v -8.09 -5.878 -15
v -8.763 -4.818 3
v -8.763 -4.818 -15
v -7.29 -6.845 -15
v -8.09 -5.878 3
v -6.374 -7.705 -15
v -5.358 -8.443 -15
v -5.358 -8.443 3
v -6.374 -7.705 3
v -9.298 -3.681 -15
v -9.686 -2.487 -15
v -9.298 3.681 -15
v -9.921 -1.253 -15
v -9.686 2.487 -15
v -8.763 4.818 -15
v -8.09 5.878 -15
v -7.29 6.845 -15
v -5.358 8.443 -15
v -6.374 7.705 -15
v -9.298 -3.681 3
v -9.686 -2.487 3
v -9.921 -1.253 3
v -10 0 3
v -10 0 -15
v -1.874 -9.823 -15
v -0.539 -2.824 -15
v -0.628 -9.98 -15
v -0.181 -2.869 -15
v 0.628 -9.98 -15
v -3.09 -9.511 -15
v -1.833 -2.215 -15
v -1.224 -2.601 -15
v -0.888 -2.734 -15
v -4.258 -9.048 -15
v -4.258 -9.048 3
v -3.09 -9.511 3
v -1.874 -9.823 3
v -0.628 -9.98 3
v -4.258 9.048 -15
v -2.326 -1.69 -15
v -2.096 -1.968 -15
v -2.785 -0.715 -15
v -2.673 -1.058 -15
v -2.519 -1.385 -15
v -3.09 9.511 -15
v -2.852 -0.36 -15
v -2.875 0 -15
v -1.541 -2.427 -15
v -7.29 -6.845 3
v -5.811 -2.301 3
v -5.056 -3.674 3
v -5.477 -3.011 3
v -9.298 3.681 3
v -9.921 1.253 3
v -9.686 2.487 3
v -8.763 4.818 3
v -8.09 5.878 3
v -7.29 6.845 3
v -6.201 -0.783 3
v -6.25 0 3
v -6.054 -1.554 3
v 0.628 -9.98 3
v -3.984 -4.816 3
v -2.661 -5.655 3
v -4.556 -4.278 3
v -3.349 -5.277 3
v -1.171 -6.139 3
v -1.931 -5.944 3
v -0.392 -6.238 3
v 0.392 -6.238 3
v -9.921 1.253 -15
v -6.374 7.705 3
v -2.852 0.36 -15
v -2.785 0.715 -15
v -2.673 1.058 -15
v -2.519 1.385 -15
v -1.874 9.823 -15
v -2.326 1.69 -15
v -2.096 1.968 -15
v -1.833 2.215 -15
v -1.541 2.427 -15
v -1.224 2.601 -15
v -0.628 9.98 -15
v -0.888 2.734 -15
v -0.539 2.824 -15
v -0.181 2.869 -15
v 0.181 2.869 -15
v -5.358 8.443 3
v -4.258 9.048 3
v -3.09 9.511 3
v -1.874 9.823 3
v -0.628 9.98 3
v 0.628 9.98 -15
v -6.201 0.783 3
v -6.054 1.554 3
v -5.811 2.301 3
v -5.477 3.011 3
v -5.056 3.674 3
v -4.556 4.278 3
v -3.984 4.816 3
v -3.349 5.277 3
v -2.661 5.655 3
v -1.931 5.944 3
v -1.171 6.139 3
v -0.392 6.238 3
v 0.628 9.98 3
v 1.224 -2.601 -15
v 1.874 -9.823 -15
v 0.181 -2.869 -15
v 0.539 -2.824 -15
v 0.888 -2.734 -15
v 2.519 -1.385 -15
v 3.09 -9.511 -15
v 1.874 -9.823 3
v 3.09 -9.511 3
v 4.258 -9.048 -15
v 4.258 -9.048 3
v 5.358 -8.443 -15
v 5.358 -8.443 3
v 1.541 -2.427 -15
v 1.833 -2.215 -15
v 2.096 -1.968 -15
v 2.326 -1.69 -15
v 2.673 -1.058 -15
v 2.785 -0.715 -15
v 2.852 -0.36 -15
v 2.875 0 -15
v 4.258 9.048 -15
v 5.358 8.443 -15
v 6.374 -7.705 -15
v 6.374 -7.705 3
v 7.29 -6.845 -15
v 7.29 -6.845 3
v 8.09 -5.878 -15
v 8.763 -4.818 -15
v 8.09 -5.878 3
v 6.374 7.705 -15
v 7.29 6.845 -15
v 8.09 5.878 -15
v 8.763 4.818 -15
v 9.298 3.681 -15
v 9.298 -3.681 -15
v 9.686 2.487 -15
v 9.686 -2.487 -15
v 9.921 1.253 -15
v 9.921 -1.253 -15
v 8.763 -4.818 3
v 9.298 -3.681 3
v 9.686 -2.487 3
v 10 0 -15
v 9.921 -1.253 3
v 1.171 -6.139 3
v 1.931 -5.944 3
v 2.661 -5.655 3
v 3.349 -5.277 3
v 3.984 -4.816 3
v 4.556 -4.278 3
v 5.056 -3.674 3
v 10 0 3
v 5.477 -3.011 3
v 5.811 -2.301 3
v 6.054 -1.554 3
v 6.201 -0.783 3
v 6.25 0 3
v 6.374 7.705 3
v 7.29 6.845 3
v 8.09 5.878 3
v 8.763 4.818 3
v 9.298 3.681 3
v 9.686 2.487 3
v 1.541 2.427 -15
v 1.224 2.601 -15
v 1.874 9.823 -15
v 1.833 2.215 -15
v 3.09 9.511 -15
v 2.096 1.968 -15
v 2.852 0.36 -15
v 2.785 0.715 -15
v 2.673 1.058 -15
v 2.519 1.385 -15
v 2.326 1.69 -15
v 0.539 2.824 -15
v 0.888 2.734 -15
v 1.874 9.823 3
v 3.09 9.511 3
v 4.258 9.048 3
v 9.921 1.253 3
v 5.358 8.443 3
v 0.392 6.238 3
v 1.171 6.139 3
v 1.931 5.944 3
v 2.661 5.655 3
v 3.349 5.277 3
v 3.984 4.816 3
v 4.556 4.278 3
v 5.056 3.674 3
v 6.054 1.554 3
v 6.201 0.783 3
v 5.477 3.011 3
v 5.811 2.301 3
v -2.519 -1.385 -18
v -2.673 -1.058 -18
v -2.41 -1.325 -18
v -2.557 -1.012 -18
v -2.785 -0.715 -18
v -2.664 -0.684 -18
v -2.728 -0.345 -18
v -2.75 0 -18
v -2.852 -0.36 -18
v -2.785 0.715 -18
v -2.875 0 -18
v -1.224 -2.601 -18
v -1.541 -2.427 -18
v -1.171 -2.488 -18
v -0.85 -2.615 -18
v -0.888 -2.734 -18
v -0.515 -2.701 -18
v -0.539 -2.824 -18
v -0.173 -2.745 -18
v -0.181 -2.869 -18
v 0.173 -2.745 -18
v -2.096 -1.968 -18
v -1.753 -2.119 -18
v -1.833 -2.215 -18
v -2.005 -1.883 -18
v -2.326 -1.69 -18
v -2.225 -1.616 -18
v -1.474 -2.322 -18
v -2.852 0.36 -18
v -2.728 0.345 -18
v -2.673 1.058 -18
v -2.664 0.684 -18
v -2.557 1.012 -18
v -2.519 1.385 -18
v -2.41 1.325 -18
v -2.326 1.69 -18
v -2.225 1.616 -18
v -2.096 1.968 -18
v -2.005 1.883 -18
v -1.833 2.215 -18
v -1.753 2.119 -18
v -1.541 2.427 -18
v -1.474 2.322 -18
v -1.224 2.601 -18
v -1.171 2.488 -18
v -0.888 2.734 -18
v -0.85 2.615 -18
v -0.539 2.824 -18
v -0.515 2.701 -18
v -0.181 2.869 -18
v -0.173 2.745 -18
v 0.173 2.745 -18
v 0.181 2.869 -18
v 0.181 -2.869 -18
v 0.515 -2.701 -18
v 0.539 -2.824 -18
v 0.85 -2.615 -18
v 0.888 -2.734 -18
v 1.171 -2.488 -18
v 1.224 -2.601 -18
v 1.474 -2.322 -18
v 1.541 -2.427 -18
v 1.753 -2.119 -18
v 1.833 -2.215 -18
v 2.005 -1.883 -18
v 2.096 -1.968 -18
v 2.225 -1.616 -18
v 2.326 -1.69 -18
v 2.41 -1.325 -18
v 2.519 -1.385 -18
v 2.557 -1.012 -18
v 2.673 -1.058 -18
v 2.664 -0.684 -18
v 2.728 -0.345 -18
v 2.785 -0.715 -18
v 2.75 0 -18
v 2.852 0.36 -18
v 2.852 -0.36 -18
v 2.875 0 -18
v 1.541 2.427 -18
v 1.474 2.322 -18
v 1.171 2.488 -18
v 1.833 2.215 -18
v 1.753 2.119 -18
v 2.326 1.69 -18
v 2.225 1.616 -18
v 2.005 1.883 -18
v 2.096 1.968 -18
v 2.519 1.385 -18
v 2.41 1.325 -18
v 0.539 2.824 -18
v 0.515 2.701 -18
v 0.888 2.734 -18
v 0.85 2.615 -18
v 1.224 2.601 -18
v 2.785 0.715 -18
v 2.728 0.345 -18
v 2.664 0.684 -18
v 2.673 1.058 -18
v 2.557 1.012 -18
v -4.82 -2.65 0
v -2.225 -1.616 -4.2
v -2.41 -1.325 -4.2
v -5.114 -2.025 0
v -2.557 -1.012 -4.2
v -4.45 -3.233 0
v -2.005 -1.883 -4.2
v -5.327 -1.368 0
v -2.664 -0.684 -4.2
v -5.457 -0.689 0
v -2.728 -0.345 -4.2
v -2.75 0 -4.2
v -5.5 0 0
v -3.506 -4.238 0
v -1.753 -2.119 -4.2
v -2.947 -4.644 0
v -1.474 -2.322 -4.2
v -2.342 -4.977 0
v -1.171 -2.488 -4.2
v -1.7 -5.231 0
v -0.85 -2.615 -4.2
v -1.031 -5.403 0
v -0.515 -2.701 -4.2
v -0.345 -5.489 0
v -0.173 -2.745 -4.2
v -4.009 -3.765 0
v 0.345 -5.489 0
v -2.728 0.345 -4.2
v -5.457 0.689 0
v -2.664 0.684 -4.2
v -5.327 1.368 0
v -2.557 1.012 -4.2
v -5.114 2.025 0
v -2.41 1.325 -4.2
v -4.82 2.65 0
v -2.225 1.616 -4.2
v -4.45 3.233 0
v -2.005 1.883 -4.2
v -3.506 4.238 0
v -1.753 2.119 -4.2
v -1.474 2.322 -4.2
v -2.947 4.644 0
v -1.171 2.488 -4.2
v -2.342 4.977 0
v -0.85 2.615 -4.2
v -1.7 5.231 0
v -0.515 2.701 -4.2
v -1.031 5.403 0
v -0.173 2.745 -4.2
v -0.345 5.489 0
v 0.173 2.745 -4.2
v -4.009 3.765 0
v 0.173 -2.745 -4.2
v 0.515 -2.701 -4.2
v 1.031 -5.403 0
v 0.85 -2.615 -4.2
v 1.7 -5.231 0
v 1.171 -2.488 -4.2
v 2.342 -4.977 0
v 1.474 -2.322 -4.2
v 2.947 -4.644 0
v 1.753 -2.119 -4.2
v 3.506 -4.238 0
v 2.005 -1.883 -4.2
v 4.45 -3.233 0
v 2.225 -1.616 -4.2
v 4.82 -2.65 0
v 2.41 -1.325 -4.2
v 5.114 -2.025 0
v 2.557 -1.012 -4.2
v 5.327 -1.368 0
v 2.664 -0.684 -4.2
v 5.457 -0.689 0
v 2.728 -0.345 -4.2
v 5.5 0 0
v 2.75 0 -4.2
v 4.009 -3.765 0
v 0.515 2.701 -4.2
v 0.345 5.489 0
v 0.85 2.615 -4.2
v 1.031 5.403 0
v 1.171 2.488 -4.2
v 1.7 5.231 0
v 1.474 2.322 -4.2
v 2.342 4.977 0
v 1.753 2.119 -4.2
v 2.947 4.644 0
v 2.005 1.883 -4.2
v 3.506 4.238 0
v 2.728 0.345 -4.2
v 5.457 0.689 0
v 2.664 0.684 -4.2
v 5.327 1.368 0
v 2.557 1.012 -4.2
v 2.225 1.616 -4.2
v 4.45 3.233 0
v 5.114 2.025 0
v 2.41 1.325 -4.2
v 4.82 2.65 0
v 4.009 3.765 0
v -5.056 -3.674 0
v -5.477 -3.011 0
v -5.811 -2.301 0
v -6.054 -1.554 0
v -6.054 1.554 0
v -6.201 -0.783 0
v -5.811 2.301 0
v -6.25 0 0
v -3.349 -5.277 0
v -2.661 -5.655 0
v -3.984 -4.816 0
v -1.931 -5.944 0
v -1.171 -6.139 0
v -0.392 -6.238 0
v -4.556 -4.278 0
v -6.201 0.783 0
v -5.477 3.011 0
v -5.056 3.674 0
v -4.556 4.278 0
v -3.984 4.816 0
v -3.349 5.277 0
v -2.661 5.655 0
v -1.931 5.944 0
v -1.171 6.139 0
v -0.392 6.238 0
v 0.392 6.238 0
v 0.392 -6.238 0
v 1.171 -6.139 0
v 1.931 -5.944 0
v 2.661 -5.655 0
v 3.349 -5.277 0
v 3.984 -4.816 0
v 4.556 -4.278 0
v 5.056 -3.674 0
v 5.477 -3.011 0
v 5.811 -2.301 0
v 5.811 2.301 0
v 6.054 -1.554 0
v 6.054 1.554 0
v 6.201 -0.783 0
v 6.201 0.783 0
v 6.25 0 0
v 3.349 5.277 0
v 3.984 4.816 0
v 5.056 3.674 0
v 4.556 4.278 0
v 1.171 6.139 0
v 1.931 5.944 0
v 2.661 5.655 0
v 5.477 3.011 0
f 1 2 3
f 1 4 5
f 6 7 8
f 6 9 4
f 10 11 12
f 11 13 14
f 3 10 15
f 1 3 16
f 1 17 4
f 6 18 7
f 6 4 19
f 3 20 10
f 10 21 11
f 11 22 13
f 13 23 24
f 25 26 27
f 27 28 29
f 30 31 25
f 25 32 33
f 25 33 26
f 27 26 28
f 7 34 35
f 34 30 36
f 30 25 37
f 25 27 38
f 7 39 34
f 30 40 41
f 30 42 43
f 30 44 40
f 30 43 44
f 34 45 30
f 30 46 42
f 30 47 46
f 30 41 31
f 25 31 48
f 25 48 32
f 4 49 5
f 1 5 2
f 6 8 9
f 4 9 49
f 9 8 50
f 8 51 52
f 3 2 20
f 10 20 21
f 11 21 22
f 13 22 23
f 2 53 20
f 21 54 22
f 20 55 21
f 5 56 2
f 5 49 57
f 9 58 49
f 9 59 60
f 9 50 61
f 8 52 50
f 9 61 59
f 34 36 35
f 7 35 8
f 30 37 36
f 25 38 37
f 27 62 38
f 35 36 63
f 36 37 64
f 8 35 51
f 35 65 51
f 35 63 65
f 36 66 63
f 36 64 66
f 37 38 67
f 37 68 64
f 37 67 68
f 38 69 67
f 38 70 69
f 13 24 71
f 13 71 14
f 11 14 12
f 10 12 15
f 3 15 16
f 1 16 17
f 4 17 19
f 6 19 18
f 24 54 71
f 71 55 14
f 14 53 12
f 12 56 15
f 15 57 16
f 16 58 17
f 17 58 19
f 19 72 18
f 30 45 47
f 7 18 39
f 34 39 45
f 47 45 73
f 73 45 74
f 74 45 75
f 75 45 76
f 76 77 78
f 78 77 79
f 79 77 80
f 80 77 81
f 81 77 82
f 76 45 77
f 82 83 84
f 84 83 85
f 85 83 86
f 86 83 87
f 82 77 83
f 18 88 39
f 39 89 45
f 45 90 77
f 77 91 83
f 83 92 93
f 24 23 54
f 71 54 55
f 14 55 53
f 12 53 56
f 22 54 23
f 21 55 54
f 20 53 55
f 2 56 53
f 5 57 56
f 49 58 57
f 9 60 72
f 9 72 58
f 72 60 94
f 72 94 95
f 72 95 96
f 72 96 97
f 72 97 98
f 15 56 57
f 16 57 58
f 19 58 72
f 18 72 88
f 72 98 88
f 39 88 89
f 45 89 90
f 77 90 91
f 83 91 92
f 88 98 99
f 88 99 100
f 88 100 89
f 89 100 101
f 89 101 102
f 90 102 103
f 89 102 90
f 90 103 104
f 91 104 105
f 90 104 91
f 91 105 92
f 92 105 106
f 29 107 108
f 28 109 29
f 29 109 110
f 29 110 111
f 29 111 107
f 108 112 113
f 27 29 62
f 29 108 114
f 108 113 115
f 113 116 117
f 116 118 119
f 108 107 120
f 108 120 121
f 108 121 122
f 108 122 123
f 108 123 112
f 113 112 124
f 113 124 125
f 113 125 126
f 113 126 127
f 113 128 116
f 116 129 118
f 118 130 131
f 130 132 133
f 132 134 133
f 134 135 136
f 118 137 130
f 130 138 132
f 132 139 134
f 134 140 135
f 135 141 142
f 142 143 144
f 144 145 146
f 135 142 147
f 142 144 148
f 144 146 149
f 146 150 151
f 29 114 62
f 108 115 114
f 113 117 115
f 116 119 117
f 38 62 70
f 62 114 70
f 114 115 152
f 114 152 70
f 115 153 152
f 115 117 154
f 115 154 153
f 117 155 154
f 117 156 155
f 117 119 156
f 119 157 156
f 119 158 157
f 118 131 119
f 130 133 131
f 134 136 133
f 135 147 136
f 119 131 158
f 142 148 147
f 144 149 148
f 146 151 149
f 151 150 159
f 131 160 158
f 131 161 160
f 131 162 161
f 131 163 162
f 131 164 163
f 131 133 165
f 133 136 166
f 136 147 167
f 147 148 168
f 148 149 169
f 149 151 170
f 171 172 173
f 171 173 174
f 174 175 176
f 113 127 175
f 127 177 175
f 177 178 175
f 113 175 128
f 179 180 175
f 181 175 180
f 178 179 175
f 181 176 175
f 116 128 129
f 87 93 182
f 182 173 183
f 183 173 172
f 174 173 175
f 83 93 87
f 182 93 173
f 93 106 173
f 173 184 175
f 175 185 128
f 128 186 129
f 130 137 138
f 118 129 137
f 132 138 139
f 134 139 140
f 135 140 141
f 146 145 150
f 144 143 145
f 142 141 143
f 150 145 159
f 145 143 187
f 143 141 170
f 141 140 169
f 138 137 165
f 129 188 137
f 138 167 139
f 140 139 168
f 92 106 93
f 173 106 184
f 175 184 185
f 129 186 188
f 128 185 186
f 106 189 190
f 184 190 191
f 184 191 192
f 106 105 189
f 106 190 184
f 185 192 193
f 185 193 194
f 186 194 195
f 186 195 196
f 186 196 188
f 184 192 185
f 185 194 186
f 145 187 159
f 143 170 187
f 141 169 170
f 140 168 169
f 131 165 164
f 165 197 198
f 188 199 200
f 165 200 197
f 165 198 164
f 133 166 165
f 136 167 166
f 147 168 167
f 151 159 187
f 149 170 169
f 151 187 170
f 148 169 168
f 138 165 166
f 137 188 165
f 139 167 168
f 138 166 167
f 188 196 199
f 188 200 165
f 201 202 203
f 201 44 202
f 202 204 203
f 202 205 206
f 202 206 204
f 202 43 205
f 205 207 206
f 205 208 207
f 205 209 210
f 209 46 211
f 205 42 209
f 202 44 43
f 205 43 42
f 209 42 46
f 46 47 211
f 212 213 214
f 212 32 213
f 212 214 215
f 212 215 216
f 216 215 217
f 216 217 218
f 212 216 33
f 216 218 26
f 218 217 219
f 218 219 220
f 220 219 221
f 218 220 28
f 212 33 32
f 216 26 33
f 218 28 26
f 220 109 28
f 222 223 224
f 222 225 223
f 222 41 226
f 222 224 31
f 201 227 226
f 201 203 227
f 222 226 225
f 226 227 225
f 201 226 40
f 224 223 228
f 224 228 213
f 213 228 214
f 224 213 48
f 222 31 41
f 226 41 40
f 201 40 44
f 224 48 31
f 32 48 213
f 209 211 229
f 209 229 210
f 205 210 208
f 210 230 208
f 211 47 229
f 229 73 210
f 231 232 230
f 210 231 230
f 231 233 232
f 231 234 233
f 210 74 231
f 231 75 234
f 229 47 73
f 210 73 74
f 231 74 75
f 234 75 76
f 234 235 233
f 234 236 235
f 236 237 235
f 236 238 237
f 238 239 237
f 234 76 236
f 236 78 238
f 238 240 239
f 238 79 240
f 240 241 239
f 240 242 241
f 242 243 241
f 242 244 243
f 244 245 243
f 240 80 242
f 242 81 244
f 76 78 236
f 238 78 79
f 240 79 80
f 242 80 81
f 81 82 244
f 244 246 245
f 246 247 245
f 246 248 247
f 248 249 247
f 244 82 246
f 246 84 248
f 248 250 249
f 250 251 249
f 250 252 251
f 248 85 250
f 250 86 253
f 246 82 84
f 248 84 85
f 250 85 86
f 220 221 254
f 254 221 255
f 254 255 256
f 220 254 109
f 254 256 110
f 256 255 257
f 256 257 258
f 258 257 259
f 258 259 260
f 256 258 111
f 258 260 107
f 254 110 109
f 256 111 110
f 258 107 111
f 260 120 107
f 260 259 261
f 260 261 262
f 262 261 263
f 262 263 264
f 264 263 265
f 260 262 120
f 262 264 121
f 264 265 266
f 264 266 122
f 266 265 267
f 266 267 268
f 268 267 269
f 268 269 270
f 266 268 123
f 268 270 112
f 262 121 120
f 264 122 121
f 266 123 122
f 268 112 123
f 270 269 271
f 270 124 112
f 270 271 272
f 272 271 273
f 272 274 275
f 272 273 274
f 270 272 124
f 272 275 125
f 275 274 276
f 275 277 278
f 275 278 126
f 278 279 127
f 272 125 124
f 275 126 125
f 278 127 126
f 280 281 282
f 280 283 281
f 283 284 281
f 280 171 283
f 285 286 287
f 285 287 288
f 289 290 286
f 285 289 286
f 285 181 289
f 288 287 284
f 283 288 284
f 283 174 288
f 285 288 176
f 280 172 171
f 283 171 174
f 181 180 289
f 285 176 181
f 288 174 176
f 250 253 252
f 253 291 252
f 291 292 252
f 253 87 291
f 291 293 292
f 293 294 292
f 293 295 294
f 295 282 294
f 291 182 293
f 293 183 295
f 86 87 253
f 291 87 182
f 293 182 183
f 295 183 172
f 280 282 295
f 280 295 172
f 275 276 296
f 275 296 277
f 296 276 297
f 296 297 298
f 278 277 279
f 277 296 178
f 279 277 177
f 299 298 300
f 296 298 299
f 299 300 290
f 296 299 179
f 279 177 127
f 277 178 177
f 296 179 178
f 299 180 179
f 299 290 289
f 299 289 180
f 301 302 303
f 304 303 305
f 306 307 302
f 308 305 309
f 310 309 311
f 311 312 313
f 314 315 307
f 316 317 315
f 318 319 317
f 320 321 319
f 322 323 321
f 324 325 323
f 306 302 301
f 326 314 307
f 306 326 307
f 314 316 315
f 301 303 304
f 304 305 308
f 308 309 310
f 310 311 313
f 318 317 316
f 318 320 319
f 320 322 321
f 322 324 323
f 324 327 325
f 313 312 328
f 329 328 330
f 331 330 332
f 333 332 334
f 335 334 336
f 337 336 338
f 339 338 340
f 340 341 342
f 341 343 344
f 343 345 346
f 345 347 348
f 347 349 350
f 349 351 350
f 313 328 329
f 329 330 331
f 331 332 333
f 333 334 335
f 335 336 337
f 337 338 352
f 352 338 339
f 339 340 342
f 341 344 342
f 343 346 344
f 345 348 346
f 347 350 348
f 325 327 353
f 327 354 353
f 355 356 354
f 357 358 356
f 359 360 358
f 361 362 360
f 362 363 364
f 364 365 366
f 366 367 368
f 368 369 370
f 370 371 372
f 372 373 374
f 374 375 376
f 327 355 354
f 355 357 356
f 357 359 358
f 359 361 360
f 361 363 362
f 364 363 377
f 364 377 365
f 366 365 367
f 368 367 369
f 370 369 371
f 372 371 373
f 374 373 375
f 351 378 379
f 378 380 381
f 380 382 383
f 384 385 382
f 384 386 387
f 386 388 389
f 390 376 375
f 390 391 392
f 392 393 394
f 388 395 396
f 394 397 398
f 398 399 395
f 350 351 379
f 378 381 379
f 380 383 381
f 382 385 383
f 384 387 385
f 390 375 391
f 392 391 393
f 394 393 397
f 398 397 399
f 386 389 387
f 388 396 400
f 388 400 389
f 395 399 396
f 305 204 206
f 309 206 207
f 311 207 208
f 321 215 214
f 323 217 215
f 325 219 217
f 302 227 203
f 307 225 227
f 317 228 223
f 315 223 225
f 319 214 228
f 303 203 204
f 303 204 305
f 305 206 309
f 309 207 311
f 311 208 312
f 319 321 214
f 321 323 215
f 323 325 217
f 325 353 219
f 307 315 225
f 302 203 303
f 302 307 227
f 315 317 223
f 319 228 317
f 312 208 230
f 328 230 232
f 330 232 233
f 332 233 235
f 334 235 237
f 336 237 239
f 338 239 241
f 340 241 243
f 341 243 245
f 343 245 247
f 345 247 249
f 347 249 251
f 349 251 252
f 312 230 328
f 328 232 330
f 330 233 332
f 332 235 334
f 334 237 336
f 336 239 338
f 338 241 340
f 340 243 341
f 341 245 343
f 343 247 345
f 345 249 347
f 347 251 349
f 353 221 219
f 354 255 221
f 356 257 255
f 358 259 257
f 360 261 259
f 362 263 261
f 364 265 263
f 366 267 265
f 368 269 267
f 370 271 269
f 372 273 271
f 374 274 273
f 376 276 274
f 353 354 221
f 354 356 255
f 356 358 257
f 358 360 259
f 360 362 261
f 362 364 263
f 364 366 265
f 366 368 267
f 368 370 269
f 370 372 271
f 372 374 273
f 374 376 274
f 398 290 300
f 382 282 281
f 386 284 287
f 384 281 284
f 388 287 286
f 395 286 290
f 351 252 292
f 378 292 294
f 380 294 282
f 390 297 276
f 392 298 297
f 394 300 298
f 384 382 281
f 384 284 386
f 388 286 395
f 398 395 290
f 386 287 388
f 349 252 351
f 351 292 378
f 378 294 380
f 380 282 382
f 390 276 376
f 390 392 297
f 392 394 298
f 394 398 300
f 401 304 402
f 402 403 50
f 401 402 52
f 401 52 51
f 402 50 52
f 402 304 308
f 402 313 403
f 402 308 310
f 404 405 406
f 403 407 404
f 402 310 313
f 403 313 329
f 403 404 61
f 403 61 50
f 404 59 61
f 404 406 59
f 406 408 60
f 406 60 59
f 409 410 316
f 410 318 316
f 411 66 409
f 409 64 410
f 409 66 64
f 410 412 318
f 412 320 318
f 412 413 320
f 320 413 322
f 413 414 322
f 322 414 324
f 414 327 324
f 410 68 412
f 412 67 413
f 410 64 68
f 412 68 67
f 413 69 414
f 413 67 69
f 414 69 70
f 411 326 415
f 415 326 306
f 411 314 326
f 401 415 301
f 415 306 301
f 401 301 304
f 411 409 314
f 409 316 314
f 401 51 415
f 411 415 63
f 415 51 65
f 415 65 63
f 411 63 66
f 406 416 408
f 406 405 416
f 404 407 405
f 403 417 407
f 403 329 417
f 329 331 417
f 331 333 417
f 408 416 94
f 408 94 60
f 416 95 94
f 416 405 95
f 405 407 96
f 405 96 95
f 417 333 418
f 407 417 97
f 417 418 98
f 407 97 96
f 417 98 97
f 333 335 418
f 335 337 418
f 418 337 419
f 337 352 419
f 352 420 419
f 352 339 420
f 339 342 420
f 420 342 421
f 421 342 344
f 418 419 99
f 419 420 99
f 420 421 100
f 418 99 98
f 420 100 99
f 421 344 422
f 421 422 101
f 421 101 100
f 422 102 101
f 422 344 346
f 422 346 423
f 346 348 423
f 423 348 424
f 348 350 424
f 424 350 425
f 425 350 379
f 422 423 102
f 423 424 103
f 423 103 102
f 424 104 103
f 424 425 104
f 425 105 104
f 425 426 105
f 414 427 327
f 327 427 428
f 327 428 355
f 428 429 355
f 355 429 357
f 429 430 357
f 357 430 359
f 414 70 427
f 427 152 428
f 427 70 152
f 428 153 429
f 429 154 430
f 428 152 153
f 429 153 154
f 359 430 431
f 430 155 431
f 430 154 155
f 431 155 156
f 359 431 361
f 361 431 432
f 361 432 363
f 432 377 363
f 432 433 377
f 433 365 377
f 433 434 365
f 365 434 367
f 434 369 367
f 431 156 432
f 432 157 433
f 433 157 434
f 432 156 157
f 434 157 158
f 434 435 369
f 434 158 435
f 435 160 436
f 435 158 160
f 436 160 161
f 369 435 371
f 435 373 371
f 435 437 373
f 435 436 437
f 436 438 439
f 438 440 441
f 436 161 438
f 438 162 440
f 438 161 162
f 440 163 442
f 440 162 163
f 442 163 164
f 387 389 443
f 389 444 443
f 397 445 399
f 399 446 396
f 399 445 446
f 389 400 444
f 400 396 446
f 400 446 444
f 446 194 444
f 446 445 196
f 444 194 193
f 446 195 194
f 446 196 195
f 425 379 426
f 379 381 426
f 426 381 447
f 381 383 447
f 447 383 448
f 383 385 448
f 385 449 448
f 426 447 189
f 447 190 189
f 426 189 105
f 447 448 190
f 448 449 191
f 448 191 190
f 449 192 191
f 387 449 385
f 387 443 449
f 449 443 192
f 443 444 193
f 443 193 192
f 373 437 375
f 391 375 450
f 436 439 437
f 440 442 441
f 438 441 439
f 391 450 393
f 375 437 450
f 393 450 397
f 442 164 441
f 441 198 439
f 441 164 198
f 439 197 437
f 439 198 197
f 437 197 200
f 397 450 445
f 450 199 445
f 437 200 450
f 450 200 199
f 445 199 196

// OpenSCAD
$fn = 50;

difference() {
	union() {
		translate(v = [0, 0, -15.0]) {
			cylinder(h = 18, r = 10.0);
		}
		#translate(v = [0, 0, -18.0]) {
			cylinder(h = 18, r = 2.875);
		}
	}
	union() {
		translate(v = [0, 0, 0]) {
			rotate(a = [0, 0, 0]) {
				difference() {
					union() {
						translate(v = [0, 0, -18.0]) {
							cylinder(h = 18, r = 2.25);
						}
						translate(v = [0, 0, -4.2]) {
							cylinder(h = 4.2, r1 = 2.75, r2 = 5.5);
						}
						translate(v = [0, 0, -18.0]) {
							cylinder(h = 18, r = 2.75);
						}
						translate(v = [0, 0, -18.0]) {
							cylinder(h = 18, r = 2.25);
						}
					}
					union();
				}
			}
		}
		#cylinder(h = 3, r = 6.25);
	}
}
